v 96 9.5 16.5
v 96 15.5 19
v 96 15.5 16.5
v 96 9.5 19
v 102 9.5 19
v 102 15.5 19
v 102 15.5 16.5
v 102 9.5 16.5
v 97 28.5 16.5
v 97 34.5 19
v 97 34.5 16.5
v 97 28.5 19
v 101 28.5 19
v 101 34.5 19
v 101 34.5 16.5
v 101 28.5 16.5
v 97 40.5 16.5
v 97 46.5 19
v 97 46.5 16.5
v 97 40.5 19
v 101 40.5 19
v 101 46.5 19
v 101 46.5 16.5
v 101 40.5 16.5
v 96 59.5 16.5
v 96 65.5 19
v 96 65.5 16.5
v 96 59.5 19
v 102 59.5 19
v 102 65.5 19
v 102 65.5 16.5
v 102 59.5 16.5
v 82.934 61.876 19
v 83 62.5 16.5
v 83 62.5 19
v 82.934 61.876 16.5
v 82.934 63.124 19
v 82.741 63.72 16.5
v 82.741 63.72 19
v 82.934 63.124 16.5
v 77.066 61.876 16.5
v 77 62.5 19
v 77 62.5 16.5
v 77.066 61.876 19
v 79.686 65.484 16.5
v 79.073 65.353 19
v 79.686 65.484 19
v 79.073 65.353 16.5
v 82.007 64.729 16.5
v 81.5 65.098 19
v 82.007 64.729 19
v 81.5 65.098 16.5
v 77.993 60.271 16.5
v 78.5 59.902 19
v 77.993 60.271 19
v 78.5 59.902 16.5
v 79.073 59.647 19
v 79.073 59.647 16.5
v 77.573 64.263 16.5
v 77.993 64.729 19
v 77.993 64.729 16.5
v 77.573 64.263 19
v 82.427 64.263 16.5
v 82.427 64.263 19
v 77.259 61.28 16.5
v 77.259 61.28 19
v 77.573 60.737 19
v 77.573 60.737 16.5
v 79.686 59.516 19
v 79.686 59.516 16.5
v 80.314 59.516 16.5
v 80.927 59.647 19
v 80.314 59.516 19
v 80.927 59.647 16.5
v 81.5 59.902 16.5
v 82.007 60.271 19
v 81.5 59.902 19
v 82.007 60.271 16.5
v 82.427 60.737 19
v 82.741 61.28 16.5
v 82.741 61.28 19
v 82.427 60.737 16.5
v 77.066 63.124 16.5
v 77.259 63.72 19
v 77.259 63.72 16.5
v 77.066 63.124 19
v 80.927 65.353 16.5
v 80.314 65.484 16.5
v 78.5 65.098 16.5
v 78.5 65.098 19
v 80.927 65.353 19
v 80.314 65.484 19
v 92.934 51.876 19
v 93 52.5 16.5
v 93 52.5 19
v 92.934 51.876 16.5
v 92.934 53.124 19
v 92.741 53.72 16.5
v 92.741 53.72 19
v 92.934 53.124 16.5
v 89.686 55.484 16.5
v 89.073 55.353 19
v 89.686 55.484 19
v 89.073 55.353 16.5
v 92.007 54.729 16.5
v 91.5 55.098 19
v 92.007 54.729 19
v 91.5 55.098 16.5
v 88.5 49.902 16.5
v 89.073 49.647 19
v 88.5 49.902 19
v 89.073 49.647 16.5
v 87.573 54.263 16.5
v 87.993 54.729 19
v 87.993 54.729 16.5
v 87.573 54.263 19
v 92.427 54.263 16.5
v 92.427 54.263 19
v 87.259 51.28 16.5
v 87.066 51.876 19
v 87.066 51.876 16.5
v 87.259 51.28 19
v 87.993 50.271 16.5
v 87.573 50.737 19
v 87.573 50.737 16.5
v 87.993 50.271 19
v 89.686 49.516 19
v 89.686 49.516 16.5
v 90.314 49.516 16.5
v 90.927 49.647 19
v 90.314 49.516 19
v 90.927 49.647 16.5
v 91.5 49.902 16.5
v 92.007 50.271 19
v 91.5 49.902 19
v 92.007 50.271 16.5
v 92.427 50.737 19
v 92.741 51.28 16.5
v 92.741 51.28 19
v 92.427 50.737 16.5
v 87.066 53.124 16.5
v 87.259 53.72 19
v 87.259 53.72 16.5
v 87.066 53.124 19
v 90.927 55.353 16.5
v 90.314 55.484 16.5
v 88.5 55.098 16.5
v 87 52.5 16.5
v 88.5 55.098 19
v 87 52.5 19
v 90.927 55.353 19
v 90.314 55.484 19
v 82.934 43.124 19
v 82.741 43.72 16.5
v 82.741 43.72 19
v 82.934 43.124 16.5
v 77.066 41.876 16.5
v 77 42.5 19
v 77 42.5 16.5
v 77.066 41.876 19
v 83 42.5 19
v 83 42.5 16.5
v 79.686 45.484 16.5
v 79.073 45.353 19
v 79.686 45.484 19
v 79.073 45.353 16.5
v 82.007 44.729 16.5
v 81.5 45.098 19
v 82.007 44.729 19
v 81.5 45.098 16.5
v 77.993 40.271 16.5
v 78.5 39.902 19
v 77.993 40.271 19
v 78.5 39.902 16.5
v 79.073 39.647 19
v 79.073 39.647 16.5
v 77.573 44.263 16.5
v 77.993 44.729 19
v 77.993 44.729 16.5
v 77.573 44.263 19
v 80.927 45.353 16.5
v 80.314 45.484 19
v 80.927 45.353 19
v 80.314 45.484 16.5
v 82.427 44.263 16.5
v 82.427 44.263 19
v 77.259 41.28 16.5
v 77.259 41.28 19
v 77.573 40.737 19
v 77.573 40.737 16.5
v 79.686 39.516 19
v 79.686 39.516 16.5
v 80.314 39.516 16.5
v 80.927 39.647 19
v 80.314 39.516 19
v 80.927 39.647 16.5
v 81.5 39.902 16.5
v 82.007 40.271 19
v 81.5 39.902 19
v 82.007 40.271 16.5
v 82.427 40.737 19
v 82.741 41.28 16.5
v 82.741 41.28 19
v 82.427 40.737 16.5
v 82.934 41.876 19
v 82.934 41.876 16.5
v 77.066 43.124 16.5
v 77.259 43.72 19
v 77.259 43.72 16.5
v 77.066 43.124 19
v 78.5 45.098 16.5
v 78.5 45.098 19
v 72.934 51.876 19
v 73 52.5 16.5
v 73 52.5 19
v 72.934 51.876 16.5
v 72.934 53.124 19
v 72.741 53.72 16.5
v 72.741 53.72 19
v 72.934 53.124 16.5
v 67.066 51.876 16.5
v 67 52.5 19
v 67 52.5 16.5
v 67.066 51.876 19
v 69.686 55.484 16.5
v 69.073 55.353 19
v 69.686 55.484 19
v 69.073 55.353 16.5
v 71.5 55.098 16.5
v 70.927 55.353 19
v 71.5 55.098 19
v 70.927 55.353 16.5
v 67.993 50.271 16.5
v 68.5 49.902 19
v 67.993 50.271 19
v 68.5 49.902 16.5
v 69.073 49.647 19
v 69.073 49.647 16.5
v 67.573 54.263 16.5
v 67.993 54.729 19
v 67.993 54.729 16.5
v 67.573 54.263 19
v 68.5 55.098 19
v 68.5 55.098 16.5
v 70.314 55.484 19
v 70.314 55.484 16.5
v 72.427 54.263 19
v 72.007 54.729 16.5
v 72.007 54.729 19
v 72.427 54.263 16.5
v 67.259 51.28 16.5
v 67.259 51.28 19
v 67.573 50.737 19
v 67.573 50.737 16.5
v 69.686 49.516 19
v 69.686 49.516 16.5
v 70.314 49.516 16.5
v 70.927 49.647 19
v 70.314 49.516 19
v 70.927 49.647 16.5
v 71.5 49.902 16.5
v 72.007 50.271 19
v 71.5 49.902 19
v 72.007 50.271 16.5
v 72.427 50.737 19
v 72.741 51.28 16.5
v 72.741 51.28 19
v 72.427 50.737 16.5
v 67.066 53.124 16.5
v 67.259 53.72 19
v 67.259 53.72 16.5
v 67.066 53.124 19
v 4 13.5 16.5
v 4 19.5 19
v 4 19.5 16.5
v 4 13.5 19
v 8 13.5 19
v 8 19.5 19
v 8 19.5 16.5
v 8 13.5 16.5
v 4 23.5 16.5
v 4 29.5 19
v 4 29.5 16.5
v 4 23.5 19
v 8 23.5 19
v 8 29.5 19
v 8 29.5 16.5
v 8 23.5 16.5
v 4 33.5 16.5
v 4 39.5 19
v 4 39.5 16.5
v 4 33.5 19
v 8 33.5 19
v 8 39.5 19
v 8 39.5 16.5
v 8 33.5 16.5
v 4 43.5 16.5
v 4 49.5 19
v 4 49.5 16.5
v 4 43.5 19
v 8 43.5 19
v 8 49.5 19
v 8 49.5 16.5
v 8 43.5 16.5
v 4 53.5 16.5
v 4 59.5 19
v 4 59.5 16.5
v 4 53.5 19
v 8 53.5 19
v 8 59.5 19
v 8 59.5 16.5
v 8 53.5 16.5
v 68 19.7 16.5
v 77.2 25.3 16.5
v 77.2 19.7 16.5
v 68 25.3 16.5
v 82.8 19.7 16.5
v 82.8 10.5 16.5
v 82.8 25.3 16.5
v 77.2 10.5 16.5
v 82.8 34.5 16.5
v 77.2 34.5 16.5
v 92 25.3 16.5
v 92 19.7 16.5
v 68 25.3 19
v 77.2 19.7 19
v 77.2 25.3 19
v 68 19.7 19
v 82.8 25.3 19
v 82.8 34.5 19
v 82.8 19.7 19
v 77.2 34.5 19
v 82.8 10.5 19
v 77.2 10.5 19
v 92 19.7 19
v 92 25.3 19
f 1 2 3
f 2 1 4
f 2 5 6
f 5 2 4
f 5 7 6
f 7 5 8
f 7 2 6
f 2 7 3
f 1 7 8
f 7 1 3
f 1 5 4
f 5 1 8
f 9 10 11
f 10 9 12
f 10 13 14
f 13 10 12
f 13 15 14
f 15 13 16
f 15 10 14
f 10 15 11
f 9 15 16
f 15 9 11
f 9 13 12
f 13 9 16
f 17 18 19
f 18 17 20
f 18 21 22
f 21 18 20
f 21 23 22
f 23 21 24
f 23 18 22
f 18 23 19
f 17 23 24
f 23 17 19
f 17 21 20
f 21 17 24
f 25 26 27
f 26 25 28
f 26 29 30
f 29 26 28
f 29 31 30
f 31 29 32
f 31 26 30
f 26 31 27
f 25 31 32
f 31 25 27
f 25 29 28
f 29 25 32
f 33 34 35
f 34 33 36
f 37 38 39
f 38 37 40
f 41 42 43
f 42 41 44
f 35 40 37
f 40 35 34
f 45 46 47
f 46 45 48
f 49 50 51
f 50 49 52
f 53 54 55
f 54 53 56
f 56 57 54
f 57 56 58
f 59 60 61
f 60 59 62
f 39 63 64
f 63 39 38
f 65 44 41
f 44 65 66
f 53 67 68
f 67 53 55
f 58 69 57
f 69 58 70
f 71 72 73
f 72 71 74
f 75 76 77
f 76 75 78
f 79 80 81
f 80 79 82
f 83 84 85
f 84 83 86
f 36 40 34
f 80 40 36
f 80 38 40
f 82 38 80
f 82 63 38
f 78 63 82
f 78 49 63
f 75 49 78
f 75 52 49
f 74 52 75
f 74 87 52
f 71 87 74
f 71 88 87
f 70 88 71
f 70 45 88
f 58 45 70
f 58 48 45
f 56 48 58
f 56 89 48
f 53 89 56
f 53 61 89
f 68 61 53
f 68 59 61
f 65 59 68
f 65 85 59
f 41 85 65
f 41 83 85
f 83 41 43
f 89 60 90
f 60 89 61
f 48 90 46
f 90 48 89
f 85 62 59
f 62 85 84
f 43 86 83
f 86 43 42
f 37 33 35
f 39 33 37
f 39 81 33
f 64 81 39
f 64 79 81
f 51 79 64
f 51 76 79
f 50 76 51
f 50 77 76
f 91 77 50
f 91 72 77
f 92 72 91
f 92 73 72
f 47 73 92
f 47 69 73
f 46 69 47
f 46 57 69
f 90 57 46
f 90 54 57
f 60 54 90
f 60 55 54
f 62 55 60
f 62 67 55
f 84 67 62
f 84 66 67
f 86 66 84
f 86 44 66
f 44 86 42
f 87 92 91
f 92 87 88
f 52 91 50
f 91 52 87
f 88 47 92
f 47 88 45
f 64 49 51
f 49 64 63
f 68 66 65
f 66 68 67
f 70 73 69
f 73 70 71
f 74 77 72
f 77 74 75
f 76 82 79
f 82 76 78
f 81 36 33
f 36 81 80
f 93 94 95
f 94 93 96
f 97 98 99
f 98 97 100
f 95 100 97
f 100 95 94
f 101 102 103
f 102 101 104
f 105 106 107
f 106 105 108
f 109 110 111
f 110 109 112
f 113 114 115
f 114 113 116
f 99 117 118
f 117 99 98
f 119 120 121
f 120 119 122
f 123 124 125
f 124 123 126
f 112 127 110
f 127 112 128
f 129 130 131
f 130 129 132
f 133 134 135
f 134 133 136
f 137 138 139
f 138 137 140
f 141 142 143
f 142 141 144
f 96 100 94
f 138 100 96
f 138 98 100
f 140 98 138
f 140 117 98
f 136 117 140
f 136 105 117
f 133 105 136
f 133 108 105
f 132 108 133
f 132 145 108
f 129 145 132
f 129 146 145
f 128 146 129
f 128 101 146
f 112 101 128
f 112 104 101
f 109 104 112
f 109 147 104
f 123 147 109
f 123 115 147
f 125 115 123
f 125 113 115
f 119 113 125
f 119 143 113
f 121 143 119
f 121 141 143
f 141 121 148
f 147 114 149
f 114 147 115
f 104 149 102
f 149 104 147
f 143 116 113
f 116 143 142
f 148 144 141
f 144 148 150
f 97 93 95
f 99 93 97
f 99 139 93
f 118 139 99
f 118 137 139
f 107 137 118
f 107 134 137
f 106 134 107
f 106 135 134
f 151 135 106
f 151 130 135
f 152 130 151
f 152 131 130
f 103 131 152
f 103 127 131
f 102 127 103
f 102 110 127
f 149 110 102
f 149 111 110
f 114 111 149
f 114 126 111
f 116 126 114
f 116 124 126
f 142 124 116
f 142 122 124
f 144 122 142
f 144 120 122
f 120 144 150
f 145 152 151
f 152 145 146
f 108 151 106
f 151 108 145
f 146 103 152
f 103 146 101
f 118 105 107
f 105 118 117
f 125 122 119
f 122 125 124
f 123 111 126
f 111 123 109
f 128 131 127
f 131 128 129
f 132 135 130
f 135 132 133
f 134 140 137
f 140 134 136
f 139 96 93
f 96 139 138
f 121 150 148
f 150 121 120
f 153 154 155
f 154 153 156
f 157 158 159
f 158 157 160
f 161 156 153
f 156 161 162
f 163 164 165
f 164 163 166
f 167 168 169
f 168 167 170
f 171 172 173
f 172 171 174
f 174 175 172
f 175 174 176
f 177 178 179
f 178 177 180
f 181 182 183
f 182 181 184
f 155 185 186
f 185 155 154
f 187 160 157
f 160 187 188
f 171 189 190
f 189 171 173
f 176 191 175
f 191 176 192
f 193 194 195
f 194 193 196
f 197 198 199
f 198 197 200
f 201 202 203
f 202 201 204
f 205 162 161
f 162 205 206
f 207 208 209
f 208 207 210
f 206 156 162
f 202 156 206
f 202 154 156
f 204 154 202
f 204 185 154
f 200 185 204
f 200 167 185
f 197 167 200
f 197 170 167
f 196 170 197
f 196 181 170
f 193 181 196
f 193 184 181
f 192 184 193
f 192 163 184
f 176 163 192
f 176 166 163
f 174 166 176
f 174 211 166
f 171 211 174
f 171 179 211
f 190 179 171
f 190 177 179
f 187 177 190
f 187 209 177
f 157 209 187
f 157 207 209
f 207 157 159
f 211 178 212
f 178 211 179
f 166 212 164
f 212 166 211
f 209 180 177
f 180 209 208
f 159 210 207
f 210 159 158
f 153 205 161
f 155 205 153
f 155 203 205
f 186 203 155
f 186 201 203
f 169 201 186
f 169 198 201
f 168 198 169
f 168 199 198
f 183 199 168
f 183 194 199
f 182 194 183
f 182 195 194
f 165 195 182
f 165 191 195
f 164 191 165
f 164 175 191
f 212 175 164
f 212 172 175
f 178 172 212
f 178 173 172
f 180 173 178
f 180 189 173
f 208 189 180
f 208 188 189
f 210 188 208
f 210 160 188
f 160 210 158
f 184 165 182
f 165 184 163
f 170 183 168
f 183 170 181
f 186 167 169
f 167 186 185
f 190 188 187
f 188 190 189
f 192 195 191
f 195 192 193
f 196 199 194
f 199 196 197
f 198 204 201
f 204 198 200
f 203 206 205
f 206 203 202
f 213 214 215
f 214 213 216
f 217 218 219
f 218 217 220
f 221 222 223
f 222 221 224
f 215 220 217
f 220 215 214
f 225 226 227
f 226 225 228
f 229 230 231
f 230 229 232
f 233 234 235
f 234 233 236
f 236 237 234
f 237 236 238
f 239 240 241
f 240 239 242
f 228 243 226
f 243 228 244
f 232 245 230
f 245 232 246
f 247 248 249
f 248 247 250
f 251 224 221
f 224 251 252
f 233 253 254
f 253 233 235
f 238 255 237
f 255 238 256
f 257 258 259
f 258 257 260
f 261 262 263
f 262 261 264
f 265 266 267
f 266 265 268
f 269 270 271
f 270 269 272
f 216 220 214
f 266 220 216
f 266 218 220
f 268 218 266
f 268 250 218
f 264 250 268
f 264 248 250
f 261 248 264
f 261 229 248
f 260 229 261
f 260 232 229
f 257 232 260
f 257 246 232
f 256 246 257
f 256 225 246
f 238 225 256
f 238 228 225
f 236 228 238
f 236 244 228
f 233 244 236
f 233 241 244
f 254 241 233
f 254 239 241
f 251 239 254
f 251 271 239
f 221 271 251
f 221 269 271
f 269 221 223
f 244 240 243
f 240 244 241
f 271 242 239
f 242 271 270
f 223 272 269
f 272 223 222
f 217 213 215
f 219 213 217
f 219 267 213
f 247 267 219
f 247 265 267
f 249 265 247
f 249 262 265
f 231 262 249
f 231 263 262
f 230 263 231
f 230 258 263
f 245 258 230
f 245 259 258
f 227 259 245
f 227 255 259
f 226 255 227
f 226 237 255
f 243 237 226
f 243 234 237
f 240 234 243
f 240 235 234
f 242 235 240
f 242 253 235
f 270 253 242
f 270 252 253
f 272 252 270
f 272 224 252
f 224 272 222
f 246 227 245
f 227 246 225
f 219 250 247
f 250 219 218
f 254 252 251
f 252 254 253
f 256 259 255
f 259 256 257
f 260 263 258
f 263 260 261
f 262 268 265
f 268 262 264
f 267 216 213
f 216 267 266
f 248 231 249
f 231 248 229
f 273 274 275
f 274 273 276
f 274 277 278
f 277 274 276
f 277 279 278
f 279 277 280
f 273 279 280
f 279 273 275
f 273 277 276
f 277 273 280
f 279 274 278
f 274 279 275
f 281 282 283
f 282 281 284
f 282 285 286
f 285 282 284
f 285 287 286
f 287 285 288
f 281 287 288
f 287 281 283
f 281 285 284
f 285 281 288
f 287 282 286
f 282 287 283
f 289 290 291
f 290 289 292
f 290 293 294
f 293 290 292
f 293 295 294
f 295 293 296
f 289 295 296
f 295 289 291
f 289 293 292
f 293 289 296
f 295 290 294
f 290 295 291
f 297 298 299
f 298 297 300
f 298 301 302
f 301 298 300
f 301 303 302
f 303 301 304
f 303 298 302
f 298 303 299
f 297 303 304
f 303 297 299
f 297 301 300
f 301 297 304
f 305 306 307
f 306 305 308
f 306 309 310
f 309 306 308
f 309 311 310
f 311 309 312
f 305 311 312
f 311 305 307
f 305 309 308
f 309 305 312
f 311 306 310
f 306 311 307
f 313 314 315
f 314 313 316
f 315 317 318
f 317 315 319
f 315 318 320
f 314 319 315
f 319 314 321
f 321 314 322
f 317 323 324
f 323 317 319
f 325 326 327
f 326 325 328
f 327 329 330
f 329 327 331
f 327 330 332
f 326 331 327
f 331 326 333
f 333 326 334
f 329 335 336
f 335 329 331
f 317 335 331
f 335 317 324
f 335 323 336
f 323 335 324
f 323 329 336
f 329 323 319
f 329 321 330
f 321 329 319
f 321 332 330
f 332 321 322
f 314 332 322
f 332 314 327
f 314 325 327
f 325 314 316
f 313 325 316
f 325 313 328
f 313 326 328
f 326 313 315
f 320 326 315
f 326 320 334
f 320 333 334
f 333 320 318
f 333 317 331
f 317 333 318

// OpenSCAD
// file: util.scad
module micro_usb() {
    color("grey")
    cube([7.7,5.5,3]);
}

micro_usb();

module header(x_max,y_max) {
    union() {
        for(x=[0:x_max-1]) {
            for(y=[0:y_max-1]) {
                translate([x*2.5,y*2.5]) {
                    color("black")
                        cube([2.5,2.5,2.5]);
                    color("gold")
                        translate([(2.5 - 0.65)/2,(2.5 - 0.65)/2,-2.5])
                        cube([0.65,0.65,11.6]);
                }
            }
        }
    }
}

translate([0,8,0])
    header(2,13);

module sdcard() {

    color("red")
        cube([11,15,0.75]);
}
translate([10,0,0])
    sdcard();

module sdcard_reader() {
    color("grey")
        cube([12,11.65,1.5]);
}
translate([9.5,-0.4,0])
    sdcard_reader();

module hdmi() {
    color("grey")
        cube([11,15,5.6]);

}

translate([30,0,0])
    hdmi();

module usb() {
    color("grey")
    cube([14,14,5.85]);

}

translate([10,20,0])
    usb();

module audio() {
    $fn=30;
    color("black")
        union() {
            cube([7,12.6,6]);
            translate([7/2,14.5,3])
                rotate([90,0,0])
                cylinder(d=6,h=2.5);
        }
}

translate([30,30,0])
    audio();

module switch() {
    color("black")
        cube([7.75,7.75,2.66]);
    $fn=10;
    // actual height is 2.75, but the buttons are squishy
    // h=2.75
    color("gray")
        translate([7.75/2,7.75/2,2.66])
        cylinder(d=3.5,h=2);
}
translate([])
    switch();


module screw() {
    // 4-40x3/8th screws
    $fn=30;
    width = 2.7;
    thread_height = 7.46;
    head_height = 2;
    head_width = 5.2;
    color("grey")
    cylinder(h=head_height, d1=width, d2=head_width, center=true);
    color("grey")
    translate([0,0,-4])
    cylinder(h=thread_height, d=width, center=true);
}


module screw_with_hole() {
    screw();
    $fn=30;
    
    translate([0,0,7.9])
    // slightly oversized screw head
    cylinder(h=15, d=5.5, center=true);
}

module screw_mount() {
    $fn=30;
    thread_height = 7.46;
    width = 2.6; // undersized
    difference() {
        cube([6,8,4], center=true);
        translate([0,0,1])
        cylinder(h=thread_height, d=width, center=true);
    }
}
module battery() {
    color("grey")
    cube([37,60,7.24]);
}

module washer(h=3,d=5) {
    $fn=30;
    
    difference() {

        cylinder(h=h,d=d, center=true);
        translate([0,0,1])
        screw();
    }
}

module slide_switch() {
    color("grey")
      cube([4.2,11.7,6]);
    color("black")
      translate([1,3.6,6])
      cube([2,2,2]);
}

module dpad_plus(g, extrude=1) {
    $fn=30;
    corners = 10;
    linear_extrude(extrude)
    difference() {
        square(24, center=true);
        translate([g,g]) square(corners, center=true);
         rotate(90) translate([g,g]) square(corners, center=true);
        rotate(180) translate([g,g]) square(corners, center=true);
        rotate(270) translate([g,g]) square(corners, center=true);
    }
}


module top_half() {
  translate([0,0,14])
    pitft();
}

pwr_switch_offset = [98,73,4];

module hardware_back() {
     translate([64,6,3])
         battery(); 
     translate([124,72,3])
         rotate(180)
         powerboost();
    translate([60,70,0])
    rotate(180)
        pi_3_a_plus(); 
    
    translate(pwr_switch_offset)
        rotate([0,90,90])
        slide_switch();
       
}

module hardware_front() {
 translate([60,70,14])
    rotate(180)
        pitft();
    translate([64,6,14])
       controller();     
    
}
// main file
use <util.scad>;
button_spread=10;
button_size = 3;
button_height = 2.5;

dpad_offset = [80,22.5,18];
buttons_offset = [80,52.5,18];
option_buttons_offset = [95,7.5,18];

module button() {
     $fn=30;
    translate([0,0,-1.5])
    linear_extrude(button_height)
    circle(button_size);
}

module square_button() {
    translate([-3,-3])
    cube([6,6,button_height], center=false);
}

module rec_button() {
    translate([-2,-3])
    cube([4,6,button_height], center=false);
}

module buttons() {
    translate([0,button_spread,0]) button();
    translate([button_spread,0,0]) button();
    translate([0,-button_spread,0]) button();
    translate([-button_spread,0,0]) button();
}

module option_buttons() {
     translate([4,5,0.5]) square_button();
        translate([4,24,0.5]) rec_button();
        translate([4,36,0.5]) rec_button();
        translate([4,55,0.5]) square_button();
}

module front_buttons() {
    
    translate([0,0,-1.5])
    translate(dpad_offset) dpad_plus(7.8,button_height);
    translate([0,0,-2])
    translate(option_buttons_offset) option_buttons();
    translate([0,0,0])
    translate(buttons_offset) buttons();
    
    pitft_buttons();
    
}

module pitft_buttons() {
    translate([6,16.5,16.5]) 
        rec_button();
    
    translate([6,26.5,16.5]) 
        rec_button();
    
    translate([6,36.5,16.5]) 
        rec_button();
    
    translate([6,46.5,16.5]) 
       rec_button();
    
    translate([6,56.5,16.5]) 
        rec_button();
}

front_buttons();
